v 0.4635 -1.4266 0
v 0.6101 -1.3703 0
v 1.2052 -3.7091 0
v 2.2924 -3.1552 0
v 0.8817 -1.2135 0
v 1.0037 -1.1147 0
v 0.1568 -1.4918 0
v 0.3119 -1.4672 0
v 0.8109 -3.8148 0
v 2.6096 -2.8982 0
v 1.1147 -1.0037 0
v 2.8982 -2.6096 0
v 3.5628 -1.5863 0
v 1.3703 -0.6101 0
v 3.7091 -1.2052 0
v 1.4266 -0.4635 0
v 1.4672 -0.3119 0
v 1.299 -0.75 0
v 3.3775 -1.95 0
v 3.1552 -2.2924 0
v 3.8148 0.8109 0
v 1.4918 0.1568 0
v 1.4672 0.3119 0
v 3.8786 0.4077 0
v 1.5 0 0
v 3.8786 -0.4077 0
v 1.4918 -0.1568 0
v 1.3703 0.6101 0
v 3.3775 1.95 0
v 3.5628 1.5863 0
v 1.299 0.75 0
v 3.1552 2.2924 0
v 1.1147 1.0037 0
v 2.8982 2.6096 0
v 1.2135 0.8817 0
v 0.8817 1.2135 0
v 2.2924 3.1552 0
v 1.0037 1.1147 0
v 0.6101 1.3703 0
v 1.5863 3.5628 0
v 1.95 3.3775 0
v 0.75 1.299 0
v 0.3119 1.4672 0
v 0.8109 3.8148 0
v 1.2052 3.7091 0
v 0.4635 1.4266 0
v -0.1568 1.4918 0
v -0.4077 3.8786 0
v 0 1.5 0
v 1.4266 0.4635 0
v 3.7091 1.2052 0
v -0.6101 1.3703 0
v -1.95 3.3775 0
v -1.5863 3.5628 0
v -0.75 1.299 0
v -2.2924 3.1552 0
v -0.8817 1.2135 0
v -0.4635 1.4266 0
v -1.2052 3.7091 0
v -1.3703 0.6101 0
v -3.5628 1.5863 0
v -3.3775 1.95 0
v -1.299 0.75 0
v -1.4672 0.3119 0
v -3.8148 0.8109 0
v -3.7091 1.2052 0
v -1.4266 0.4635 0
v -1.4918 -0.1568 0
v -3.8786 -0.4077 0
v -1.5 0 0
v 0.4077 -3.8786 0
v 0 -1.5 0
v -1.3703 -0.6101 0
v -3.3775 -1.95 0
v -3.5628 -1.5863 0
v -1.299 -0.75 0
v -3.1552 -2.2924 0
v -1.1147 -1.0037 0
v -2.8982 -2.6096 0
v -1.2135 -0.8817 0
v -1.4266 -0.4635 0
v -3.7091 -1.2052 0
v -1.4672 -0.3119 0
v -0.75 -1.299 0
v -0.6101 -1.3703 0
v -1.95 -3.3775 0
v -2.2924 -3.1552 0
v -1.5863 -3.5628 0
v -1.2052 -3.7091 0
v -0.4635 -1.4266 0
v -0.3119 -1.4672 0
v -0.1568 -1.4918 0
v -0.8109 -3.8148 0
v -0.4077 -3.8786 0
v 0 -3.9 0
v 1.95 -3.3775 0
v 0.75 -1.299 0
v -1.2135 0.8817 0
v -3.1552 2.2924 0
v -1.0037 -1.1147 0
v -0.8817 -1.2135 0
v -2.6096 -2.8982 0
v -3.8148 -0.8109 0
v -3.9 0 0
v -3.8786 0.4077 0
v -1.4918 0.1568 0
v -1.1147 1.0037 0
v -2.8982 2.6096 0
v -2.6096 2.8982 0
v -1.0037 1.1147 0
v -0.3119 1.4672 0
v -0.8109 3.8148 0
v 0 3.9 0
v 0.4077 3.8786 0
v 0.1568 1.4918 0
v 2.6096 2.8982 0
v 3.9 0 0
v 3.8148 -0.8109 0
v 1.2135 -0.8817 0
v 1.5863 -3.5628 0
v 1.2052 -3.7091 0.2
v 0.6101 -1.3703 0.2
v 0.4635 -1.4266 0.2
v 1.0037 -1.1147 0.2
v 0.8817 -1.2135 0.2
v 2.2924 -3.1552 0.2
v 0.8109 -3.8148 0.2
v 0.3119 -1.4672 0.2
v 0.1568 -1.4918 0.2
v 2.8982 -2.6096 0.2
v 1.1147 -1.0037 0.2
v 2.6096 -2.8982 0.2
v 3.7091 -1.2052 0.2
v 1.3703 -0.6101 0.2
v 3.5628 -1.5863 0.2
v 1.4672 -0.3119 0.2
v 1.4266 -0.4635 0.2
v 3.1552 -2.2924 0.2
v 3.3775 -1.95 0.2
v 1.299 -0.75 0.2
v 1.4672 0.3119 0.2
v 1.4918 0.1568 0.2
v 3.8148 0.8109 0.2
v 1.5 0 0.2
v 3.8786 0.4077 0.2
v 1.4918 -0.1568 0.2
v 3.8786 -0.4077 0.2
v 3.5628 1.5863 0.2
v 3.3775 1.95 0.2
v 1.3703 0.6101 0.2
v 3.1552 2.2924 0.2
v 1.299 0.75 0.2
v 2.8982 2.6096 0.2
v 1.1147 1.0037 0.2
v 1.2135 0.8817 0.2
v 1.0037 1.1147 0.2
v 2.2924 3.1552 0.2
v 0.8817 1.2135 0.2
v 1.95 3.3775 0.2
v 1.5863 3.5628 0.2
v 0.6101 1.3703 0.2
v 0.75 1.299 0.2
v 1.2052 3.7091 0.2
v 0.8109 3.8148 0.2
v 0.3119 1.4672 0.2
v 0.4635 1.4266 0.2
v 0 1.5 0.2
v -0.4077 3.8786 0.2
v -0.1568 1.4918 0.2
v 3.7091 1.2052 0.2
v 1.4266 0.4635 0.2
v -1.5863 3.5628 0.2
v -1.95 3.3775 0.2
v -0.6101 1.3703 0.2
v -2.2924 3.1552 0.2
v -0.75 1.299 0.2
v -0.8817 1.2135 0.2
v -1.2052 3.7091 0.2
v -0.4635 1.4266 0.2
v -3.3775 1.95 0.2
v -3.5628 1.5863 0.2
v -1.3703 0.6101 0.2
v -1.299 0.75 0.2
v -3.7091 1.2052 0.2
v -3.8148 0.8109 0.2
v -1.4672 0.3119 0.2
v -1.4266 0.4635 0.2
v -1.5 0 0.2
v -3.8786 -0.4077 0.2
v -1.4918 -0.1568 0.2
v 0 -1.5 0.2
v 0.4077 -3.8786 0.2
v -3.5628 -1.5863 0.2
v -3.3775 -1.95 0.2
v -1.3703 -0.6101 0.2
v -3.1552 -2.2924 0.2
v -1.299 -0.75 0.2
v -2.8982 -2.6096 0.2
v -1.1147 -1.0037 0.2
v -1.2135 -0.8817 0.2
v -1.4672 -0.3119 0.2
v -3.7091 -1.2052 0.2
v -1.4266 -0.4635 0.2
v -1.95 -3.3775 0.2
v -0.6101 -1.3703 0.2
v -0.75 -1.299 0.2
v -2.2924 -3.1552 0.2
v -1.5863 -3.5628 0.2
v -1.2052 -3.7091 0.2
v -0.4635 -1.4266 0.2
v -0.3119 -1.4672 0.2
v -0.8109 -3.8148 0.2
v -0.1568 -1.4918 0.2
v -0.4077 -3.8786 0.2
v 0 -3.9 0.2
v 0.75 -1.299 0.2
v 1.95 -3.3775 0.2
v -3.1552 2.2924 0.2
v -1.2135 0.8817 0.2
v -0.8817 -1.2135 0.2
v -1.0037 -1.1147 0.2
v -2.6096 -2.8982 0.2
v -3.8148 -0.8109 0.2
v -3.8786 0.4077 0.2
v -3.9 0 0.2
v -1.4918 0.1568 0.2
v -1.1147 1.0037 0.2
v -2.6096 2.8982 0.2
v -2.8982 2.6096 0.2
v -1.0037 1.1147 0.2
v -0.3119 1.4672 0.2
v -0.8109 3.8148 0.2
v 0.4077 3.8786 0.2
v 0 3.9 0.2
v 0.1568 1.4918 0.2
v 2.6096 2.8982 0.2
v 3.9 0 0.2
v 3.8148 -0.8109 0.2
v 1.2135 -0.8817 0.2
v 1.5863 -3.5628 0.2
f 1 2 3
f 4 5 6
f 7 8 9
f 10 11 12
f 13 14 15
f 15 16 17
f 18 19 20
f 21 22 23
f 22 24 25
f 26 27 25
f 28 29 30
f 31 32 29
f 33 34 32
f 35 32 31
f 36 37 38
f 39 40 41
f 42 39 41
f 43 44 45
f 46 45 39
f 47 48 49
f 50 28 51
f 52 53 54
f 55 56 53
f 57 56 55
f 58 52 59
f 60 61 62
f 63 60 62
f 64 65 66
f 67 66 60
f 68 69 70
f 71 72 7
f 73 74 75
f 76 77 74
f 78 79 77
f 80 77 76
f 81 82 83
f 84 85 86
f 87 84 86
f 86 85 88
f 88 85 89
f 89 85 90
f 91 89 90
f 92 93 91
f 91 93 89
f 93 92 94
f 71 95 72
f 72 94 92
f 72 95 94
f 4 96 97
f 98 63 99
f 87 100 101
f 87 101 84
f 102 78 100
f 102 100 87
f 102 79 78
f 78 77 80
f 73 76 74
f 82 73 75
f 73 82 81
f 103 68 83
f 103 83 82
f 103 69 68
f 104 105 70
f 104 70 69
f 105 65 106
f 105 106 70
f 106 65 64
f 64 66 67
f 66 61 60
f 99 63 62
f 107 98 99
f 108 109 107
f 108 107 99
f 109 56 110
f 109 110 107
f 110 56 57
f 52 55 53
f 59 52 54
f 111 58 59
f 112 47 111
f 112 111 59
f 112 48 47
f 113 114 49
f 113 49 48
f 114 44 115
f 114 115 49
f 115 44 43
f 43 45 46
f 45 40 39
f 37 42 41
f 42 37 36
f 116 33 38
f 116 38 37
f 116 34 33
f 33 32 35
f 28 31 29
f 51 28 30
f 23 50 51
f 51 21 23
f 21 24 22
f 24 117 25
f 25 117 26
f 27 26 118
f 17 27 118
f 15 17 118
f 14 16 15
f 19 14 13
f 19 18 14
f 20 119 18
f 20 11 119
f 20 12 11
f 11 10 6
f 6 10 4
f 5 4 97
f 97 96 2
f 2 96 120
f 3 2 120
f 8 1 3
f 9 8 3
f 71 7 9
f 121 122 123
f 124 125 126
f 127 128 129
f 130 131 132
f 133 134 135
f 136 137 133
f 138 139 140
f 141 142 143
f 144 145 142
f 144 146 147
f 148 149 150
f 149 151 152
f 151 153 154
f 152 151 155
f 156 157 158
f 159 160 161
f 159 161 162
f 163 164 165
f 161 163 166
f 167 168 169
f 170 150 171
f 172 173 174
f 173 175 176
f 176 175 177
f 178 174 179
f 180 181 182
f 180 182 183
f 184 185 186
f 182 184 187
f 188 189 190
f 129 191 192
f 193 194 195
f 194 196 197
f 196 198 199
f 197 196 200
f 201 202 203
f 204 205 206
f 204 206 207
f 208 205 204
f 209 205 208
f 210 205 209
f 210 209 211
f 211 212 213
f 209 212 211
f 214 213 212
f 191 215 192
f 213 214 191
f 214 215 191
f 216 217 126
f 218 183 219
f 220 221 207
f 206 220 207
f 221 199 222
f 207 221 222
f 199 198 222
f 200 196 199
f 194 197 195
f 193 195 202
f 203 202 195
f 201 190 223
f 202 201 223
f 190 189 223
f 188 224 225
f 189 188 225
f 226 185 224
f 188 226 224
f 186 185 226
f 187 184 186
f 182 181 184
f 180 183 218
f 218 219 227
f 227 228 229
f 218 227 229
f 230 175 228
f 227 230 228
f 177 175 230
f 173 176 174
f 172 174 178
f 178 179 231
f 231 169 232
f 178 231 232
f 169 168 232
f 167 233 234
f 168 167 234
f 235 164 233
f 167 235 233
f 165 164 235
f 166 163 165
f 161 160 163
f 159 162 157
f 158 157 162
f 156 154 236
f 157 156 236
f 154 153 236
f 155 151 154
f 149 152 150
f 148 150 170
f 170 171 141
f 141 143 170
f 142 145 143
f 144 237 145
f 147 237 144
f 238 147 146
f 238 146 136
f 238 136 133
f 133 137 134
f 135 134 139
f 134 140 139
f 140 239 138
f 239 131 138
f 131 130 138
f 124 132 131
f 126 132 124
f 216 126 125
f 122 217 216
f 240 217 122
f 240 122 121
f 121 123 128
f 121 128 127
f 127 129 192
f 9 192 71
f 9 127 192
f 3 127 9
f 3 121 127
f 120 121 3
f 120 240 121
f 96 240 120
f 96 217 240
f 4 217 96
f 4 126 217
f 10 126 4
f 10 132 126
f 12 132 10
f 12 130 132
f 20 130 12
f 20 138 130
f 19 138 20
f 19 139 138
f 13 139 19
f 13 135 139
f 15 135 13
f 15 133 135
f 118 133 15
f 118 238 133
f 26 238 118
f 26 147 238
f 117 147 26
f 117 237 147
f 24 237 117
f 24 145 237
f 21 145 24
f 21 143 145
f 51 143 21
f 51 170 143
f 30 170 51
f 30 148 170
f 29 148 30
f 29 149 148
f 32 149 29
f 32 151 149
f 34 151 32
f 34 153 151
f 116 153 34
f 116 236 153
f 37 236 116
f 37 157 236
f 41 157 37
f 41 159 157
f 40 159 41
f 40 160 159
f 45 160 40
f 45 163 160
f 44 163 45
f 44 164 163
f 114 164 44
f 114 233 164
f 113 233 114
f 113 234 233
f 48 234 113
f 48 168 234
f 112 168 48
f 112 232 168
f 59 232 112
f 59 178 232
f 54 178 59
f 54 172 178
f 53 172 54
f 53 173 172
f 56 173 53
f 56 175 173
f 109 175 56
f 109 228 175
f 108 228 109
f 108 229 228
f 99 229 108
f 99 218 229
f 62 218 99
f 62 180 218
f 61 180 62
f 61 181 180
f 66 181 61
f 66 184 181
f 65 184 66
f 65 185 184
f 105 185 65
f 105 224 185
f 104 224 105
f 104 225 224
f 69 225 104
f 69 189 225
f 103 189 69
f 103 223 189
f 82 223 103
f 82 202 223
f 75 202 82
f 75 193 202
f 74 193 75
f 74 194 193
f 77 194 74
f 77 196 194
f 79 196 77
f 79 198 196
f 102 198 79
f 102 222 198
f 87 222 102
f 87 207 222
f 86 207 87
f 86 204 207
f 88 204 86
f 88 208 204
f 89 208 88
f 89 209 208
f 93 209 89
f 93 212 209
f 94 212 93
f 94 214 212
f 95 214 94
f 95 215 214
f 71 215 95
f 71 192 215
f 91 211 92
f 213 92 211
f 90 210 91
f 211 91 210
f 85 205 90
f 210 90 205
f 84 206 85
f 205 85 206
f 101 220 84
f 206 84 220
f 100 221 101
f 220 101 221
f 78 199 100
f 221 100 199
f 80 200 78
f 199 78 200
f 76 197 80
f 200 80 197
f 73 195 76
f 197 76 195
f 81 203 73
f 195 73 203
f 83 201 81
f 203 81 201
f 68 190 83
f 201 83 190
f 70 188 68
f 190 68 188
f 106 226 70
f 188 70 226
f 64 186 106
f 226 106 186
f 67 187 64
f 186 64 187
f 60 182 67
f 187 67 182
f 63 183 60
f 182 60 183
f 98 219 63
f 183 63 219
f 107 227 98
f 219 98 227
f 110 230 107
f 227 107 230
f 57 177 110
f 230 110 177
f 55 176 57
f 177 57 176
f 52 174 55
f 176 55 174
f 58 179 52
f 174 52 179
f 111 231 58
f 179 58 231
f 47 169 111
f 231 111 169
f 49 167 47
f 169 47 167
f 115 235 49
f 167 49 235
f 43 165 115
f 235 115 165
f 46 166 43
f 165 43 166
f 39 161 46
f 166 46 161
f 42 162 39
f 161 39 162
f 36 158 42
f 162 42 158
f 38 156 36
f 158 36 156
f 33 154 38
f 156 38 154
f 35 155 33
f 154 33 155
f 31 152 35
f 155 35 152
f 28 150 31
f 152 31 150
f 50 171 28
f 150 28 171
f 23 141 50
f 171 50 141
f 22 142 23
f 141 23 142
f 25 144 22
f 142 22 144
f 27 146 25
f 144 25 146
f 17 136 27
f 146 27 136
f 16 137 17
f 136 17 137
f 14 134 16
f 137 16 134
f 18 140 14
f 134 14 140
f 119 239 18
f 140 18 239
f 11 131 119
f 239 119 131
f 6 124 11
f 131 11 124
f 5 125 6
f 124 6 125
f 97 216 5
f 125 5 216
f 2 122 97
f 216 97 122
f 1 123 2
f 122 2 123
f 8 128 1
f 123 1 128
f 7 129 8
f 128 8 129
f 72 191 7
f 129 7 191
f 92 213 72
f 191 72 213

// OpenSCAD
$fn=60;
linear_extrude(0.2) difference() {
  circle(d=7.8);
  circle(d=3);
}
